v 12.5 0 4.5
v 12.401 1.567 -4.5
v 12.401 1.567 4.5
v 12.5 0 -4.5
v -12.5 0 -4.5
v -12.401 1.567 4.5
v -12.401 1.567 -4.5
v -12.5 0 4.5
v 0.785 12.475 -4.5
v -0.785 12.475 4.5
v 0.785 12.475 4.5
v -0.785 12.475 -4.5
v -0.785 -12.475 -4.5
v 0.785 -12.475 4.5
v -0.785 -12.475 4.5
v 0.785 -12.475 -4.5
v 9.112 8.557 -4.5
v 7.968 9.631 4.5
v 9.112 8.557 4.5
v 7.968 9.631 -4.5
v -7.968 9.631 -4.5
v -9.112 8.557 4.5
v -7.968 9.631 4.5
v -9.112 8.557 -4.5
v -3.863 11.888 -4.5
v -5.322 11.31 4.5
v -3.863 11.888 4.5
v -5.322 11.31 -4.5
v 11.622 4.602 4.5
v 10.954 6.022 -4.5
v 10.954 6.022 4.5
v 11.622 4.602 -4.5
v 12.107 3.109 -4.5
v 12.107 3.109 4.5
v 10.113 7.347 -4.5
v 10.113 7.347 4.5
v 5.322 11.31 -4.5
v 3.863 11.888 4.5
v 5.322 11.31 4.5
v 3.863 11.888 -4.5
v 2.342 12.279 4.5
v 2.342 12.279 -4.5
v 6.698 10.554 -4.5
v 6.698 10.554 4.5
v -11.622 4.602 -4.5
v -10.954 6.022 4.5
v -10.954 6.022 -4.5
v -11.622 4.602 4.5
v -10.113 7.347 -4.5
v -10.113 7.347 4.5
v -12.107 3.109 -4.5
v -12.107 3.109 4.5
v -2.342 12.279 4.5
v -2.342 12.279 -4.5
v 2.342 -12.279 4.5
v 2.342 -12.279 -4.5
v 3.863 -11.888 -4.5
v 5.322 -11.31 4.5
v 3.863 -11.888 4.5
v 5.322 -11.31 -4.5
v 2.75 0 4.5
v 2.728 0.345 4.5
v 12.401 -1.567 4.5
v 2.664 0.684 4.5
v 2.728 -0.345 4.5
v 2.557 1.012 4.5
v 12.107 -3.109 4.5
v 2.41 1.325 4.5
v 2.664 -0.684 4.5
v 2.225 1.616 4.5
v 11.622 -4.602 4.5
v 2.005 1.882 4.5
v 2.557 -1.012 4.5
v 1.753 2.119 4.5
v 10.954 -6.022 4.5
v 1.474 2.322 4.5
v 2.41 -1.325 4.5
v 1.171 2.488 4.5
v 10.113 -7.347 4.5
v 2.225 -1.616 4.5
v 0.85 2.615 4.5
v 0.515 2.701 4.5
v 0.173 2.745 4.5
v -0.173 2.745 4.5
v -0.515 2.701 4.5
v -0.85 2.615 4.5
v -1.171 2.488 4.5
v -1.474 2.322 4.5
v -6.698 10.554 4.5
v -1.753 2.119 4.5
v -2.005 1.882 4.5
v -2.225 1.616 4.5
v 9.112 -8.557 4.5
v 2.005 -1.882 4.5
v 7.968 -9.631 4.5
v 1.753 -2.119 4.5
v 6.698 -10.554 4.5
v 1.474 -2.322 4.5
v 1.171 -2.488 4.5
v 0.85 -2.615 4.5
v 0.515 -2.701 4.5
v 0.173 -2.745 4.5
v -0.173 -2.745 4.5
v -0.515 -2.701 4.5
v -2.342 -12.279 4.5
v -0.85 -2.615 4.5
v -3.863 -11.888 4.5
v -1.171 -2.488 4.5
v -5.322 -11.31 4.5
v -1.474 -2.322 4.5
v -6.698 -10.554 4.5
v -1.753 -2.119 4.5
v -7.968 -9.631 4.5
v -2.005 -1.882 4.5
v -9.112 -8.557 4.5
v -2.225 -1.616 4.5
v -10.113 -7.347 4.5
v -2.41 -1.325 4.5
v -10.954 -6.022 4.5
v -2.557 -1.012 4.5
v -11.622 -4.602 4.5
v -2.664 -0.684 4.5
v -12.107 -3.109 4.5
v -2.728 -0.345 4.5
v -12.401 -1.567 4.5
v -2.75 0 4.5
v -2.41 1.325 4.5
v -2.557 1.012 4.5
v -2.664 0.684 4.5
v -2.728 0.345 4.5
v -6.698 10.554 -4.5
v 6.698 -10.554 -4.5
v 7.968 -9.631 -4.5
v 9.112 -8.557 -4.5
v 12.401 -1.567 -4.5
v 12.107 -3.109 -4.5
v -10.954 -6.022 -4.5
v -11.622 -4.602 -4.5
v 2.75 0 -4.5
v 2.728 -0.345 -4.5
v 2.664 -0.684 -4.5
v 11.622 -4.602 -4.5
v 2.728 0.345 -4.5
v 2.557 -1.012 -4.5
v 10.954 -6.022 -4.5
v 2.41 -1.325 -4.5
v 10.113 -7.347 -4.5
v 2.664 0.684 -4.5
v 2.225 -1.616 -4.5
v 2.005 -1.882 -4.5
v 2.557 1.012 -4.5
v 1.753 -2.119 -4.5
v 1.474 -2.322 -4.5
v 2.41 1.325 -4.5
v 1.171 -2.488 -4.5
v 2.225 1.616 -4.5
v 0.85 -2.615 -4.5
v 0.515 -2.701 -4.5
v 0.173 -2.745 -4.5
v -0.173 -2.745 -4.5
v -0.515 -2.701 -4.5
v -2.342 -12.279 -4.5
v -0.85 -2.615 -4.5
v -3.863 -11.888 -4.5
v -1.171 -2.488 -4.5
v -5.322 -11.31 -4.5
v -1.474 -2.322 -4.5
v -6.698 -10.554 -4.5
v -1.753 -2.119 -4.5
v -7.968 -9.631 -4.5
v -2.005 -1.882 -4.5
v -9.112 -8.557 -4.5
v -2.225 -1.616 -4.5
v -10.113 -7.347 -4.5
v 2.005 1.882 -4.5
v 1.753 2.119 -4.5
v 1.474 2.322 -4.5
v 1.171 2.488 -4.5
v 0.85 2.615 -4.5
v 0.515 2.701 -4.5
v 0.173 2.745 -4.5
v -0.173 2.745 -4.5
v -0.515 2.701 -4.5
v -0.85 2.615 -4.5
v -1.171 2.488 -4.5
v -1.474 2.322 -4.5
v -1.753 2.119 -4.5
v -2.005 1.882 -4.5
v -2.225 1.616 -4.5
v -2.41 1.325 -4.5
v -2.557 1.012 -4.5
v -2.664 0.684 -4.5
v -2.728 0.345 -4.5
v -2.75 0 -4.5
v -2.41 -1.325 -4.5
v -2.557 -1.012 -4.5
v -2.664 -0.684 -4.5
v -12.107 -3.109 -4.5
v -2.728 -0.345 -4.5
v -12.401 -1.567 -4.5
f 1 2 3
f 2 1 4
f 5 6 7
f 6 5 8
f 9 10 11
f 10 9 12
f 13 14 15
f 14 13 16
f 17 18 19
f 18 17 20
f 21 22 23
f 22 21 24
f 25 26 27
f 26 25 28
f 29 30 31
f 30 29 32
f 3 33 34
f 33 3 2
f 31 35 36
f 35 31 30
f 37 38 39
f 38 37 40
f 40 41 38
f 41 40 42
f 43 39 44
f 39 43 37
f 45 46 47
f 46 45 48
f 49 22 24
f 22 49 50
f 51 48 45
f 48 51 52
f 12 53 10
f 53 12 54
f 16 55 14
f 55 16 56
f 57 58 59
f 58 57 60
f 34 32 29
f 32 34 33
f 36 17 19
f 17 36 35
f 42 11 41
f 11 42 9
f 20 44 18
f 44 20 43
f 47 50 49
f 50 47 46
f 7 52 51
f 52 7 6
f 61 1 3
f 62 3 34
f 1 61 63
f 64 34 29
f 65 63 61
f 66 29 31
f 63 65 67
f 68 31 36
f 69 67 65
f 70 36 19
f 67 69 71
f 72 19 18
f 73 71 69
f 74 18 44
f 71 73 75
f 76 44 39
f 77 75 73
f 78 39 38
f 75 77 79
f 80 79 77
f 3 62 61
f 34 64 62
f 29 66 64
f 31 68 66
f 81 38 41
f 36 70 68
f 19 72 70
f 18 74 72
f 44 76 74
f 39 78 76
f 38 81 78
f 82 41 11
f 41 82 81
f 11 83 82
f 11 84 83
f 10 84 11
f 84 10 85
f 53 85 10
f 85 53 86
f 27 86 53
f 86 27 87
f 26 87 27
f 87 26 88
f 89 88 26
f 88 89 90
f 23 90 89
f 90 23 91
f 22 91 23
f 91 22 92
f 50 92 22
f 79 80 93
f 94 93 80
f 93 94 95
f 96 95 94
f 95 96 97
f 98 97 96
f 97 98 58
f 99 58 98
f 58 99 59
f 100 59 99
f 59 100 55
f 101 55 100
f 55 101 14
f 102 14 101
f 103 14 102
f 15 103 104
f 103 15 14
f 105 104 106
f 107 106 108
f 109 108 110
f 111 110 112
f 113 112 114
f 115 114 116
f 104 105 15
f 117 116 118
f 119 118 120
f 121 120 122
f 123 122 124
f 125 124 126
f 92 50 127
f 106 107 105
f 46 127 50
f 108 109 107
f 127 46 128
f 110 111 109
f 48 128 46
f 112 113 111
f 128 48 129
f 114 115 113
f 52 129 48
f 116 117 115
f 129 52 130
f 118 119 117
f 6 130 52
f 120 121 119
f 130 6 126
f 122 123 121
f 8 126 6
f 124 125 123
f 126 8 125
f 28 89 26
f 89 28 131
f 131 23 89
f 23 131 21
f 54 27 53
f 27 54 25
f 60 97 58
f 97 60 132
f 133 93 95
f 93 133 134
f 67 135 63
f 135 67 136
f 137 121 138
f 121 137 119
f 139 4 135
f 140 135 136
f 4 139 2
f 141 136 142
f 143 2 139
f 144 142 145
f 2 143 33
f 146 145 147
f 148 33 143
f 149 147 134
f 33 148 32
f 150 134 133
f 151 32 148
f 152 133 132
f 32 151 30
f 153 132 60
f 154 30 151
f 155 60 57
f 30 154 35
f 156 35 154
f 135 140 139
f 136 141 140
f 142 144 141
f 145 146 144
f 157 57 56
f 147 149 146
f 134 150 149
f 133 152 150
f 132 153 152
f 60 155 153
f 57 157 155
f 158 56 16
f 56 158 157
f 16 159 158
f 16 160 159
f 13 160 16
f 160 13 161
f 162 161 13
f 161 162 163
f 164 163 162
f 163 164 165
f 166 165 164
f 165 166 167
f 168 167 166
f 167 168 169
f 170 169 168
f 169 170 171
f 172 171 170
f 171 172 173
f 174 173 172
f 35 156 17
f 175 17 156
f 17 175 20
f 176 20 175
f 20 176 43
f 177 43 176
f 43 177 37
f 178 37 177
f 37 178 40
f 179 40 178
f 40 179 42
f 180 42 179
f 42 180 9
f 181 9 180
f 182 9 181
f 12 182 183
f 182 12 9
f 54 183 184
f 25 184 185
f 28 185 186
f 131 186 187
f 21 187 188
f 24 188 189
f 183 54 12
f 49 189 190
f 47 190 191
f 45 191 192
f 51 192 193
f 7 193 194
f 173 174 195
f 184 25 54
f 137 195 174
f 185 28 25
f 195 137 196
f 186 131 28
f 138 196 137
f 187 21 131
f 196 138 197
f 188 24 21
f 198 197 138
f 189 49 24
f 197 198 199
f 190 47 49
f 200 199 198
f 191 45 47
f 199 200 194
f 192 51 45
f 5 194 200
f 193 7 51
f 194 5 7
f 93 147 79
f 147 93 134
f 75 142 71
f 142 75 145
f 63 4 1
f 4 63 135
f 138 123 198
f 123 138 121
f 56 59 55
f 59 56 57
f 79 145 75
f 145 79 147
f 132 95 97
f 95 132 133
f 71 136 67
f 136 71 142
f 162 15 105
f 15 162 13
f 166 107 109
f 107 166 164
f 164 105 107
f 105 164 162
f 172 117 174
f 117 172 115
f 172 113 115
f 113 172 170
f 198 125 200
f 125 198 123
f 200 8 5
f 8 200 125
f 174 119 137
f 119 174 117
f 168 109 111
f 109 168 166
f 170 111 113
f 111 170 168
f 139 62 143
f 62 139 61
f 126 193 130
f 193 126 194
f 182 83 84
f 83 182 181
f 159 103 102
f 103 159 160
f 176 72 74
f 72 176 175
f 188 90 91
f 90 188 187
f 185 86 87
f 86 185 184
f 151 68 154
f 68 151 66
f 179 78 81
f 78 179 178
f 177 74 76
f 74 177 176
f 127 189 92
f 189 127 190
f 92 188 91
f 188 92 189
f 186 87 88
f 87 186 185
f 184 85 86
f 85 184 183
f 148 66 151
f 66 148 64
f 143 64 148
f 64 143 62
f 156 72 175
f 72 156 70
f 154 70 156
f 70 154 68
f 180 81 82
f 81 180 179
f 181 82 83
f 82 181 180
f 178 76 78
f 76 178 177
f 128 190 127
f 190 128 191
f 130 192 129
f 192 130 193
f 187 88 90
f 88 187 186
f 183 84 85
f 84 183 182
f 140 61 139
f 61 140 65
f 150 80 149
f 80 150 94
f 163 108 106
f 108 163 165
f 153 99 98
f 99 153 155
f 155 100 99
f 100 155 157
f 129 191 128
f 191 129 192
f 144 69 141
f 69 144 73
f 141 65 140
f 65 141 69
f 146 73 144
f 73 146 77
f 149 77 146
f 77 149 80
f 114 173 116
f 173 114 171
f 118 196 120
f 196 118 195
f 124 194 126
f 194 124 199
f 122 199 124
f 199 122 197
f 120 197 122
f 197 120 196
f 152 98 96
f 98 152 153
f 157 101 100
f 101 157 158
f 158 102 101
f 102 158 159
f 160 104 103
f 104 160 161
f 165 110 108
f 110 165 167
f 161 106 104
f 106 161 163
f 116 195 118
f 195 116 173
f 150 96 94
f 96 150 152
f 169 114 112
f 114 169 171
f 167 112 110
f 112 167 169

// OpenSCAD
$fn = 50;


difference() {
	union() {
		translate(v = [0, 0, -4.5000000000]) {
			cylinder(h = 9, r = 12.5000000000);
		}
	}
	union() {
		translate(v = [0, 0, -100.0000000000]) {
			cylinder(h = 200, r = 2.7500000000);
		}
	}
}
